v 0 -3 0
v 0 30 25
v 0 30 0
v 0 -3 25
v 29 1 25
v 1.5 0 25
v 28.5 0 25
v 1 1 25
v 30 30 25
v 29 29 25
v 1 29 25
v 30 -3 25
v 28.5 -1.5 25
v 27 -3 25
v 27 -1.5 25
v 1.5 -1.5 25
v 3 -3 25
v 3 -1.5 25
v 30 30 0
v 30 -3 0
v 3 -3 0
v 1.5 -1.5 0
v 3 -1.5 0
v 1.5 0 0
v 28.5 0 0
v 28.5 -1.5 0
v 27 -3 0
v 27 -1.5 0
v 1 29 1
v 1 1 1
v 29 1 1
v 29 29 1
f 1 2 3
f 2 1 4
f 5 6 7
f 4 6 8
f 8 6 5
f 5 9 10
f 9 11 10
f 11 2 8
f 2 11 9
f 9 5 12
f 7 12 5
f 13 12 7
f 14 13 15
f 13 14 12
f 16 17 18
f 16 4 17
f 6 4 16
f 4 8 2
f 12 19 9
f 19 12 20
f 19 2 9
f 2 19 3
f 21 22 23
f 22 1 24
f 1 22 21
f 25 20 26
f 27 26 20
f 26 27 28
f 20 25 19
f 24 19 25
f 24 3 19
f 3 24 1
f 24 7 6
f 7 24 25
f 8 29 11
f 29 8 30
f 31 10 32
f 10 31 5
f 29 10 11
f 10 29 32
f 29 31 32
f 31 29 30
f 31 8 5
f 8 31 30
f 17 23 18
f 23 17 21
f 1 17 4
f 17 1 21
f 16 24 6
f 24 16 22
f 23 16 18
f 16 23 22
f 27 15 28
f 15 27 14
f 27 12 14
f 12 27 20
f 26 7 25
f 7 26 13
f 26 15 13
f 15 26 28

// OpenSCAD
difference() {
  cube([30,30,25]);
  translate([1,1,1]) cube([28,28,30]);
}

difference () {
translate([0,-3,0]) cube([3,3,25]);
translate([1.5,-1.5,0]) cube([1.5,1.5,25]);
}

translate([27,0,0]) difference () {
translate([0,-3,0]) cube([3,3,25]);
#translate([0,-1.5,0]) cube([1.5,1.5,25]);
}
